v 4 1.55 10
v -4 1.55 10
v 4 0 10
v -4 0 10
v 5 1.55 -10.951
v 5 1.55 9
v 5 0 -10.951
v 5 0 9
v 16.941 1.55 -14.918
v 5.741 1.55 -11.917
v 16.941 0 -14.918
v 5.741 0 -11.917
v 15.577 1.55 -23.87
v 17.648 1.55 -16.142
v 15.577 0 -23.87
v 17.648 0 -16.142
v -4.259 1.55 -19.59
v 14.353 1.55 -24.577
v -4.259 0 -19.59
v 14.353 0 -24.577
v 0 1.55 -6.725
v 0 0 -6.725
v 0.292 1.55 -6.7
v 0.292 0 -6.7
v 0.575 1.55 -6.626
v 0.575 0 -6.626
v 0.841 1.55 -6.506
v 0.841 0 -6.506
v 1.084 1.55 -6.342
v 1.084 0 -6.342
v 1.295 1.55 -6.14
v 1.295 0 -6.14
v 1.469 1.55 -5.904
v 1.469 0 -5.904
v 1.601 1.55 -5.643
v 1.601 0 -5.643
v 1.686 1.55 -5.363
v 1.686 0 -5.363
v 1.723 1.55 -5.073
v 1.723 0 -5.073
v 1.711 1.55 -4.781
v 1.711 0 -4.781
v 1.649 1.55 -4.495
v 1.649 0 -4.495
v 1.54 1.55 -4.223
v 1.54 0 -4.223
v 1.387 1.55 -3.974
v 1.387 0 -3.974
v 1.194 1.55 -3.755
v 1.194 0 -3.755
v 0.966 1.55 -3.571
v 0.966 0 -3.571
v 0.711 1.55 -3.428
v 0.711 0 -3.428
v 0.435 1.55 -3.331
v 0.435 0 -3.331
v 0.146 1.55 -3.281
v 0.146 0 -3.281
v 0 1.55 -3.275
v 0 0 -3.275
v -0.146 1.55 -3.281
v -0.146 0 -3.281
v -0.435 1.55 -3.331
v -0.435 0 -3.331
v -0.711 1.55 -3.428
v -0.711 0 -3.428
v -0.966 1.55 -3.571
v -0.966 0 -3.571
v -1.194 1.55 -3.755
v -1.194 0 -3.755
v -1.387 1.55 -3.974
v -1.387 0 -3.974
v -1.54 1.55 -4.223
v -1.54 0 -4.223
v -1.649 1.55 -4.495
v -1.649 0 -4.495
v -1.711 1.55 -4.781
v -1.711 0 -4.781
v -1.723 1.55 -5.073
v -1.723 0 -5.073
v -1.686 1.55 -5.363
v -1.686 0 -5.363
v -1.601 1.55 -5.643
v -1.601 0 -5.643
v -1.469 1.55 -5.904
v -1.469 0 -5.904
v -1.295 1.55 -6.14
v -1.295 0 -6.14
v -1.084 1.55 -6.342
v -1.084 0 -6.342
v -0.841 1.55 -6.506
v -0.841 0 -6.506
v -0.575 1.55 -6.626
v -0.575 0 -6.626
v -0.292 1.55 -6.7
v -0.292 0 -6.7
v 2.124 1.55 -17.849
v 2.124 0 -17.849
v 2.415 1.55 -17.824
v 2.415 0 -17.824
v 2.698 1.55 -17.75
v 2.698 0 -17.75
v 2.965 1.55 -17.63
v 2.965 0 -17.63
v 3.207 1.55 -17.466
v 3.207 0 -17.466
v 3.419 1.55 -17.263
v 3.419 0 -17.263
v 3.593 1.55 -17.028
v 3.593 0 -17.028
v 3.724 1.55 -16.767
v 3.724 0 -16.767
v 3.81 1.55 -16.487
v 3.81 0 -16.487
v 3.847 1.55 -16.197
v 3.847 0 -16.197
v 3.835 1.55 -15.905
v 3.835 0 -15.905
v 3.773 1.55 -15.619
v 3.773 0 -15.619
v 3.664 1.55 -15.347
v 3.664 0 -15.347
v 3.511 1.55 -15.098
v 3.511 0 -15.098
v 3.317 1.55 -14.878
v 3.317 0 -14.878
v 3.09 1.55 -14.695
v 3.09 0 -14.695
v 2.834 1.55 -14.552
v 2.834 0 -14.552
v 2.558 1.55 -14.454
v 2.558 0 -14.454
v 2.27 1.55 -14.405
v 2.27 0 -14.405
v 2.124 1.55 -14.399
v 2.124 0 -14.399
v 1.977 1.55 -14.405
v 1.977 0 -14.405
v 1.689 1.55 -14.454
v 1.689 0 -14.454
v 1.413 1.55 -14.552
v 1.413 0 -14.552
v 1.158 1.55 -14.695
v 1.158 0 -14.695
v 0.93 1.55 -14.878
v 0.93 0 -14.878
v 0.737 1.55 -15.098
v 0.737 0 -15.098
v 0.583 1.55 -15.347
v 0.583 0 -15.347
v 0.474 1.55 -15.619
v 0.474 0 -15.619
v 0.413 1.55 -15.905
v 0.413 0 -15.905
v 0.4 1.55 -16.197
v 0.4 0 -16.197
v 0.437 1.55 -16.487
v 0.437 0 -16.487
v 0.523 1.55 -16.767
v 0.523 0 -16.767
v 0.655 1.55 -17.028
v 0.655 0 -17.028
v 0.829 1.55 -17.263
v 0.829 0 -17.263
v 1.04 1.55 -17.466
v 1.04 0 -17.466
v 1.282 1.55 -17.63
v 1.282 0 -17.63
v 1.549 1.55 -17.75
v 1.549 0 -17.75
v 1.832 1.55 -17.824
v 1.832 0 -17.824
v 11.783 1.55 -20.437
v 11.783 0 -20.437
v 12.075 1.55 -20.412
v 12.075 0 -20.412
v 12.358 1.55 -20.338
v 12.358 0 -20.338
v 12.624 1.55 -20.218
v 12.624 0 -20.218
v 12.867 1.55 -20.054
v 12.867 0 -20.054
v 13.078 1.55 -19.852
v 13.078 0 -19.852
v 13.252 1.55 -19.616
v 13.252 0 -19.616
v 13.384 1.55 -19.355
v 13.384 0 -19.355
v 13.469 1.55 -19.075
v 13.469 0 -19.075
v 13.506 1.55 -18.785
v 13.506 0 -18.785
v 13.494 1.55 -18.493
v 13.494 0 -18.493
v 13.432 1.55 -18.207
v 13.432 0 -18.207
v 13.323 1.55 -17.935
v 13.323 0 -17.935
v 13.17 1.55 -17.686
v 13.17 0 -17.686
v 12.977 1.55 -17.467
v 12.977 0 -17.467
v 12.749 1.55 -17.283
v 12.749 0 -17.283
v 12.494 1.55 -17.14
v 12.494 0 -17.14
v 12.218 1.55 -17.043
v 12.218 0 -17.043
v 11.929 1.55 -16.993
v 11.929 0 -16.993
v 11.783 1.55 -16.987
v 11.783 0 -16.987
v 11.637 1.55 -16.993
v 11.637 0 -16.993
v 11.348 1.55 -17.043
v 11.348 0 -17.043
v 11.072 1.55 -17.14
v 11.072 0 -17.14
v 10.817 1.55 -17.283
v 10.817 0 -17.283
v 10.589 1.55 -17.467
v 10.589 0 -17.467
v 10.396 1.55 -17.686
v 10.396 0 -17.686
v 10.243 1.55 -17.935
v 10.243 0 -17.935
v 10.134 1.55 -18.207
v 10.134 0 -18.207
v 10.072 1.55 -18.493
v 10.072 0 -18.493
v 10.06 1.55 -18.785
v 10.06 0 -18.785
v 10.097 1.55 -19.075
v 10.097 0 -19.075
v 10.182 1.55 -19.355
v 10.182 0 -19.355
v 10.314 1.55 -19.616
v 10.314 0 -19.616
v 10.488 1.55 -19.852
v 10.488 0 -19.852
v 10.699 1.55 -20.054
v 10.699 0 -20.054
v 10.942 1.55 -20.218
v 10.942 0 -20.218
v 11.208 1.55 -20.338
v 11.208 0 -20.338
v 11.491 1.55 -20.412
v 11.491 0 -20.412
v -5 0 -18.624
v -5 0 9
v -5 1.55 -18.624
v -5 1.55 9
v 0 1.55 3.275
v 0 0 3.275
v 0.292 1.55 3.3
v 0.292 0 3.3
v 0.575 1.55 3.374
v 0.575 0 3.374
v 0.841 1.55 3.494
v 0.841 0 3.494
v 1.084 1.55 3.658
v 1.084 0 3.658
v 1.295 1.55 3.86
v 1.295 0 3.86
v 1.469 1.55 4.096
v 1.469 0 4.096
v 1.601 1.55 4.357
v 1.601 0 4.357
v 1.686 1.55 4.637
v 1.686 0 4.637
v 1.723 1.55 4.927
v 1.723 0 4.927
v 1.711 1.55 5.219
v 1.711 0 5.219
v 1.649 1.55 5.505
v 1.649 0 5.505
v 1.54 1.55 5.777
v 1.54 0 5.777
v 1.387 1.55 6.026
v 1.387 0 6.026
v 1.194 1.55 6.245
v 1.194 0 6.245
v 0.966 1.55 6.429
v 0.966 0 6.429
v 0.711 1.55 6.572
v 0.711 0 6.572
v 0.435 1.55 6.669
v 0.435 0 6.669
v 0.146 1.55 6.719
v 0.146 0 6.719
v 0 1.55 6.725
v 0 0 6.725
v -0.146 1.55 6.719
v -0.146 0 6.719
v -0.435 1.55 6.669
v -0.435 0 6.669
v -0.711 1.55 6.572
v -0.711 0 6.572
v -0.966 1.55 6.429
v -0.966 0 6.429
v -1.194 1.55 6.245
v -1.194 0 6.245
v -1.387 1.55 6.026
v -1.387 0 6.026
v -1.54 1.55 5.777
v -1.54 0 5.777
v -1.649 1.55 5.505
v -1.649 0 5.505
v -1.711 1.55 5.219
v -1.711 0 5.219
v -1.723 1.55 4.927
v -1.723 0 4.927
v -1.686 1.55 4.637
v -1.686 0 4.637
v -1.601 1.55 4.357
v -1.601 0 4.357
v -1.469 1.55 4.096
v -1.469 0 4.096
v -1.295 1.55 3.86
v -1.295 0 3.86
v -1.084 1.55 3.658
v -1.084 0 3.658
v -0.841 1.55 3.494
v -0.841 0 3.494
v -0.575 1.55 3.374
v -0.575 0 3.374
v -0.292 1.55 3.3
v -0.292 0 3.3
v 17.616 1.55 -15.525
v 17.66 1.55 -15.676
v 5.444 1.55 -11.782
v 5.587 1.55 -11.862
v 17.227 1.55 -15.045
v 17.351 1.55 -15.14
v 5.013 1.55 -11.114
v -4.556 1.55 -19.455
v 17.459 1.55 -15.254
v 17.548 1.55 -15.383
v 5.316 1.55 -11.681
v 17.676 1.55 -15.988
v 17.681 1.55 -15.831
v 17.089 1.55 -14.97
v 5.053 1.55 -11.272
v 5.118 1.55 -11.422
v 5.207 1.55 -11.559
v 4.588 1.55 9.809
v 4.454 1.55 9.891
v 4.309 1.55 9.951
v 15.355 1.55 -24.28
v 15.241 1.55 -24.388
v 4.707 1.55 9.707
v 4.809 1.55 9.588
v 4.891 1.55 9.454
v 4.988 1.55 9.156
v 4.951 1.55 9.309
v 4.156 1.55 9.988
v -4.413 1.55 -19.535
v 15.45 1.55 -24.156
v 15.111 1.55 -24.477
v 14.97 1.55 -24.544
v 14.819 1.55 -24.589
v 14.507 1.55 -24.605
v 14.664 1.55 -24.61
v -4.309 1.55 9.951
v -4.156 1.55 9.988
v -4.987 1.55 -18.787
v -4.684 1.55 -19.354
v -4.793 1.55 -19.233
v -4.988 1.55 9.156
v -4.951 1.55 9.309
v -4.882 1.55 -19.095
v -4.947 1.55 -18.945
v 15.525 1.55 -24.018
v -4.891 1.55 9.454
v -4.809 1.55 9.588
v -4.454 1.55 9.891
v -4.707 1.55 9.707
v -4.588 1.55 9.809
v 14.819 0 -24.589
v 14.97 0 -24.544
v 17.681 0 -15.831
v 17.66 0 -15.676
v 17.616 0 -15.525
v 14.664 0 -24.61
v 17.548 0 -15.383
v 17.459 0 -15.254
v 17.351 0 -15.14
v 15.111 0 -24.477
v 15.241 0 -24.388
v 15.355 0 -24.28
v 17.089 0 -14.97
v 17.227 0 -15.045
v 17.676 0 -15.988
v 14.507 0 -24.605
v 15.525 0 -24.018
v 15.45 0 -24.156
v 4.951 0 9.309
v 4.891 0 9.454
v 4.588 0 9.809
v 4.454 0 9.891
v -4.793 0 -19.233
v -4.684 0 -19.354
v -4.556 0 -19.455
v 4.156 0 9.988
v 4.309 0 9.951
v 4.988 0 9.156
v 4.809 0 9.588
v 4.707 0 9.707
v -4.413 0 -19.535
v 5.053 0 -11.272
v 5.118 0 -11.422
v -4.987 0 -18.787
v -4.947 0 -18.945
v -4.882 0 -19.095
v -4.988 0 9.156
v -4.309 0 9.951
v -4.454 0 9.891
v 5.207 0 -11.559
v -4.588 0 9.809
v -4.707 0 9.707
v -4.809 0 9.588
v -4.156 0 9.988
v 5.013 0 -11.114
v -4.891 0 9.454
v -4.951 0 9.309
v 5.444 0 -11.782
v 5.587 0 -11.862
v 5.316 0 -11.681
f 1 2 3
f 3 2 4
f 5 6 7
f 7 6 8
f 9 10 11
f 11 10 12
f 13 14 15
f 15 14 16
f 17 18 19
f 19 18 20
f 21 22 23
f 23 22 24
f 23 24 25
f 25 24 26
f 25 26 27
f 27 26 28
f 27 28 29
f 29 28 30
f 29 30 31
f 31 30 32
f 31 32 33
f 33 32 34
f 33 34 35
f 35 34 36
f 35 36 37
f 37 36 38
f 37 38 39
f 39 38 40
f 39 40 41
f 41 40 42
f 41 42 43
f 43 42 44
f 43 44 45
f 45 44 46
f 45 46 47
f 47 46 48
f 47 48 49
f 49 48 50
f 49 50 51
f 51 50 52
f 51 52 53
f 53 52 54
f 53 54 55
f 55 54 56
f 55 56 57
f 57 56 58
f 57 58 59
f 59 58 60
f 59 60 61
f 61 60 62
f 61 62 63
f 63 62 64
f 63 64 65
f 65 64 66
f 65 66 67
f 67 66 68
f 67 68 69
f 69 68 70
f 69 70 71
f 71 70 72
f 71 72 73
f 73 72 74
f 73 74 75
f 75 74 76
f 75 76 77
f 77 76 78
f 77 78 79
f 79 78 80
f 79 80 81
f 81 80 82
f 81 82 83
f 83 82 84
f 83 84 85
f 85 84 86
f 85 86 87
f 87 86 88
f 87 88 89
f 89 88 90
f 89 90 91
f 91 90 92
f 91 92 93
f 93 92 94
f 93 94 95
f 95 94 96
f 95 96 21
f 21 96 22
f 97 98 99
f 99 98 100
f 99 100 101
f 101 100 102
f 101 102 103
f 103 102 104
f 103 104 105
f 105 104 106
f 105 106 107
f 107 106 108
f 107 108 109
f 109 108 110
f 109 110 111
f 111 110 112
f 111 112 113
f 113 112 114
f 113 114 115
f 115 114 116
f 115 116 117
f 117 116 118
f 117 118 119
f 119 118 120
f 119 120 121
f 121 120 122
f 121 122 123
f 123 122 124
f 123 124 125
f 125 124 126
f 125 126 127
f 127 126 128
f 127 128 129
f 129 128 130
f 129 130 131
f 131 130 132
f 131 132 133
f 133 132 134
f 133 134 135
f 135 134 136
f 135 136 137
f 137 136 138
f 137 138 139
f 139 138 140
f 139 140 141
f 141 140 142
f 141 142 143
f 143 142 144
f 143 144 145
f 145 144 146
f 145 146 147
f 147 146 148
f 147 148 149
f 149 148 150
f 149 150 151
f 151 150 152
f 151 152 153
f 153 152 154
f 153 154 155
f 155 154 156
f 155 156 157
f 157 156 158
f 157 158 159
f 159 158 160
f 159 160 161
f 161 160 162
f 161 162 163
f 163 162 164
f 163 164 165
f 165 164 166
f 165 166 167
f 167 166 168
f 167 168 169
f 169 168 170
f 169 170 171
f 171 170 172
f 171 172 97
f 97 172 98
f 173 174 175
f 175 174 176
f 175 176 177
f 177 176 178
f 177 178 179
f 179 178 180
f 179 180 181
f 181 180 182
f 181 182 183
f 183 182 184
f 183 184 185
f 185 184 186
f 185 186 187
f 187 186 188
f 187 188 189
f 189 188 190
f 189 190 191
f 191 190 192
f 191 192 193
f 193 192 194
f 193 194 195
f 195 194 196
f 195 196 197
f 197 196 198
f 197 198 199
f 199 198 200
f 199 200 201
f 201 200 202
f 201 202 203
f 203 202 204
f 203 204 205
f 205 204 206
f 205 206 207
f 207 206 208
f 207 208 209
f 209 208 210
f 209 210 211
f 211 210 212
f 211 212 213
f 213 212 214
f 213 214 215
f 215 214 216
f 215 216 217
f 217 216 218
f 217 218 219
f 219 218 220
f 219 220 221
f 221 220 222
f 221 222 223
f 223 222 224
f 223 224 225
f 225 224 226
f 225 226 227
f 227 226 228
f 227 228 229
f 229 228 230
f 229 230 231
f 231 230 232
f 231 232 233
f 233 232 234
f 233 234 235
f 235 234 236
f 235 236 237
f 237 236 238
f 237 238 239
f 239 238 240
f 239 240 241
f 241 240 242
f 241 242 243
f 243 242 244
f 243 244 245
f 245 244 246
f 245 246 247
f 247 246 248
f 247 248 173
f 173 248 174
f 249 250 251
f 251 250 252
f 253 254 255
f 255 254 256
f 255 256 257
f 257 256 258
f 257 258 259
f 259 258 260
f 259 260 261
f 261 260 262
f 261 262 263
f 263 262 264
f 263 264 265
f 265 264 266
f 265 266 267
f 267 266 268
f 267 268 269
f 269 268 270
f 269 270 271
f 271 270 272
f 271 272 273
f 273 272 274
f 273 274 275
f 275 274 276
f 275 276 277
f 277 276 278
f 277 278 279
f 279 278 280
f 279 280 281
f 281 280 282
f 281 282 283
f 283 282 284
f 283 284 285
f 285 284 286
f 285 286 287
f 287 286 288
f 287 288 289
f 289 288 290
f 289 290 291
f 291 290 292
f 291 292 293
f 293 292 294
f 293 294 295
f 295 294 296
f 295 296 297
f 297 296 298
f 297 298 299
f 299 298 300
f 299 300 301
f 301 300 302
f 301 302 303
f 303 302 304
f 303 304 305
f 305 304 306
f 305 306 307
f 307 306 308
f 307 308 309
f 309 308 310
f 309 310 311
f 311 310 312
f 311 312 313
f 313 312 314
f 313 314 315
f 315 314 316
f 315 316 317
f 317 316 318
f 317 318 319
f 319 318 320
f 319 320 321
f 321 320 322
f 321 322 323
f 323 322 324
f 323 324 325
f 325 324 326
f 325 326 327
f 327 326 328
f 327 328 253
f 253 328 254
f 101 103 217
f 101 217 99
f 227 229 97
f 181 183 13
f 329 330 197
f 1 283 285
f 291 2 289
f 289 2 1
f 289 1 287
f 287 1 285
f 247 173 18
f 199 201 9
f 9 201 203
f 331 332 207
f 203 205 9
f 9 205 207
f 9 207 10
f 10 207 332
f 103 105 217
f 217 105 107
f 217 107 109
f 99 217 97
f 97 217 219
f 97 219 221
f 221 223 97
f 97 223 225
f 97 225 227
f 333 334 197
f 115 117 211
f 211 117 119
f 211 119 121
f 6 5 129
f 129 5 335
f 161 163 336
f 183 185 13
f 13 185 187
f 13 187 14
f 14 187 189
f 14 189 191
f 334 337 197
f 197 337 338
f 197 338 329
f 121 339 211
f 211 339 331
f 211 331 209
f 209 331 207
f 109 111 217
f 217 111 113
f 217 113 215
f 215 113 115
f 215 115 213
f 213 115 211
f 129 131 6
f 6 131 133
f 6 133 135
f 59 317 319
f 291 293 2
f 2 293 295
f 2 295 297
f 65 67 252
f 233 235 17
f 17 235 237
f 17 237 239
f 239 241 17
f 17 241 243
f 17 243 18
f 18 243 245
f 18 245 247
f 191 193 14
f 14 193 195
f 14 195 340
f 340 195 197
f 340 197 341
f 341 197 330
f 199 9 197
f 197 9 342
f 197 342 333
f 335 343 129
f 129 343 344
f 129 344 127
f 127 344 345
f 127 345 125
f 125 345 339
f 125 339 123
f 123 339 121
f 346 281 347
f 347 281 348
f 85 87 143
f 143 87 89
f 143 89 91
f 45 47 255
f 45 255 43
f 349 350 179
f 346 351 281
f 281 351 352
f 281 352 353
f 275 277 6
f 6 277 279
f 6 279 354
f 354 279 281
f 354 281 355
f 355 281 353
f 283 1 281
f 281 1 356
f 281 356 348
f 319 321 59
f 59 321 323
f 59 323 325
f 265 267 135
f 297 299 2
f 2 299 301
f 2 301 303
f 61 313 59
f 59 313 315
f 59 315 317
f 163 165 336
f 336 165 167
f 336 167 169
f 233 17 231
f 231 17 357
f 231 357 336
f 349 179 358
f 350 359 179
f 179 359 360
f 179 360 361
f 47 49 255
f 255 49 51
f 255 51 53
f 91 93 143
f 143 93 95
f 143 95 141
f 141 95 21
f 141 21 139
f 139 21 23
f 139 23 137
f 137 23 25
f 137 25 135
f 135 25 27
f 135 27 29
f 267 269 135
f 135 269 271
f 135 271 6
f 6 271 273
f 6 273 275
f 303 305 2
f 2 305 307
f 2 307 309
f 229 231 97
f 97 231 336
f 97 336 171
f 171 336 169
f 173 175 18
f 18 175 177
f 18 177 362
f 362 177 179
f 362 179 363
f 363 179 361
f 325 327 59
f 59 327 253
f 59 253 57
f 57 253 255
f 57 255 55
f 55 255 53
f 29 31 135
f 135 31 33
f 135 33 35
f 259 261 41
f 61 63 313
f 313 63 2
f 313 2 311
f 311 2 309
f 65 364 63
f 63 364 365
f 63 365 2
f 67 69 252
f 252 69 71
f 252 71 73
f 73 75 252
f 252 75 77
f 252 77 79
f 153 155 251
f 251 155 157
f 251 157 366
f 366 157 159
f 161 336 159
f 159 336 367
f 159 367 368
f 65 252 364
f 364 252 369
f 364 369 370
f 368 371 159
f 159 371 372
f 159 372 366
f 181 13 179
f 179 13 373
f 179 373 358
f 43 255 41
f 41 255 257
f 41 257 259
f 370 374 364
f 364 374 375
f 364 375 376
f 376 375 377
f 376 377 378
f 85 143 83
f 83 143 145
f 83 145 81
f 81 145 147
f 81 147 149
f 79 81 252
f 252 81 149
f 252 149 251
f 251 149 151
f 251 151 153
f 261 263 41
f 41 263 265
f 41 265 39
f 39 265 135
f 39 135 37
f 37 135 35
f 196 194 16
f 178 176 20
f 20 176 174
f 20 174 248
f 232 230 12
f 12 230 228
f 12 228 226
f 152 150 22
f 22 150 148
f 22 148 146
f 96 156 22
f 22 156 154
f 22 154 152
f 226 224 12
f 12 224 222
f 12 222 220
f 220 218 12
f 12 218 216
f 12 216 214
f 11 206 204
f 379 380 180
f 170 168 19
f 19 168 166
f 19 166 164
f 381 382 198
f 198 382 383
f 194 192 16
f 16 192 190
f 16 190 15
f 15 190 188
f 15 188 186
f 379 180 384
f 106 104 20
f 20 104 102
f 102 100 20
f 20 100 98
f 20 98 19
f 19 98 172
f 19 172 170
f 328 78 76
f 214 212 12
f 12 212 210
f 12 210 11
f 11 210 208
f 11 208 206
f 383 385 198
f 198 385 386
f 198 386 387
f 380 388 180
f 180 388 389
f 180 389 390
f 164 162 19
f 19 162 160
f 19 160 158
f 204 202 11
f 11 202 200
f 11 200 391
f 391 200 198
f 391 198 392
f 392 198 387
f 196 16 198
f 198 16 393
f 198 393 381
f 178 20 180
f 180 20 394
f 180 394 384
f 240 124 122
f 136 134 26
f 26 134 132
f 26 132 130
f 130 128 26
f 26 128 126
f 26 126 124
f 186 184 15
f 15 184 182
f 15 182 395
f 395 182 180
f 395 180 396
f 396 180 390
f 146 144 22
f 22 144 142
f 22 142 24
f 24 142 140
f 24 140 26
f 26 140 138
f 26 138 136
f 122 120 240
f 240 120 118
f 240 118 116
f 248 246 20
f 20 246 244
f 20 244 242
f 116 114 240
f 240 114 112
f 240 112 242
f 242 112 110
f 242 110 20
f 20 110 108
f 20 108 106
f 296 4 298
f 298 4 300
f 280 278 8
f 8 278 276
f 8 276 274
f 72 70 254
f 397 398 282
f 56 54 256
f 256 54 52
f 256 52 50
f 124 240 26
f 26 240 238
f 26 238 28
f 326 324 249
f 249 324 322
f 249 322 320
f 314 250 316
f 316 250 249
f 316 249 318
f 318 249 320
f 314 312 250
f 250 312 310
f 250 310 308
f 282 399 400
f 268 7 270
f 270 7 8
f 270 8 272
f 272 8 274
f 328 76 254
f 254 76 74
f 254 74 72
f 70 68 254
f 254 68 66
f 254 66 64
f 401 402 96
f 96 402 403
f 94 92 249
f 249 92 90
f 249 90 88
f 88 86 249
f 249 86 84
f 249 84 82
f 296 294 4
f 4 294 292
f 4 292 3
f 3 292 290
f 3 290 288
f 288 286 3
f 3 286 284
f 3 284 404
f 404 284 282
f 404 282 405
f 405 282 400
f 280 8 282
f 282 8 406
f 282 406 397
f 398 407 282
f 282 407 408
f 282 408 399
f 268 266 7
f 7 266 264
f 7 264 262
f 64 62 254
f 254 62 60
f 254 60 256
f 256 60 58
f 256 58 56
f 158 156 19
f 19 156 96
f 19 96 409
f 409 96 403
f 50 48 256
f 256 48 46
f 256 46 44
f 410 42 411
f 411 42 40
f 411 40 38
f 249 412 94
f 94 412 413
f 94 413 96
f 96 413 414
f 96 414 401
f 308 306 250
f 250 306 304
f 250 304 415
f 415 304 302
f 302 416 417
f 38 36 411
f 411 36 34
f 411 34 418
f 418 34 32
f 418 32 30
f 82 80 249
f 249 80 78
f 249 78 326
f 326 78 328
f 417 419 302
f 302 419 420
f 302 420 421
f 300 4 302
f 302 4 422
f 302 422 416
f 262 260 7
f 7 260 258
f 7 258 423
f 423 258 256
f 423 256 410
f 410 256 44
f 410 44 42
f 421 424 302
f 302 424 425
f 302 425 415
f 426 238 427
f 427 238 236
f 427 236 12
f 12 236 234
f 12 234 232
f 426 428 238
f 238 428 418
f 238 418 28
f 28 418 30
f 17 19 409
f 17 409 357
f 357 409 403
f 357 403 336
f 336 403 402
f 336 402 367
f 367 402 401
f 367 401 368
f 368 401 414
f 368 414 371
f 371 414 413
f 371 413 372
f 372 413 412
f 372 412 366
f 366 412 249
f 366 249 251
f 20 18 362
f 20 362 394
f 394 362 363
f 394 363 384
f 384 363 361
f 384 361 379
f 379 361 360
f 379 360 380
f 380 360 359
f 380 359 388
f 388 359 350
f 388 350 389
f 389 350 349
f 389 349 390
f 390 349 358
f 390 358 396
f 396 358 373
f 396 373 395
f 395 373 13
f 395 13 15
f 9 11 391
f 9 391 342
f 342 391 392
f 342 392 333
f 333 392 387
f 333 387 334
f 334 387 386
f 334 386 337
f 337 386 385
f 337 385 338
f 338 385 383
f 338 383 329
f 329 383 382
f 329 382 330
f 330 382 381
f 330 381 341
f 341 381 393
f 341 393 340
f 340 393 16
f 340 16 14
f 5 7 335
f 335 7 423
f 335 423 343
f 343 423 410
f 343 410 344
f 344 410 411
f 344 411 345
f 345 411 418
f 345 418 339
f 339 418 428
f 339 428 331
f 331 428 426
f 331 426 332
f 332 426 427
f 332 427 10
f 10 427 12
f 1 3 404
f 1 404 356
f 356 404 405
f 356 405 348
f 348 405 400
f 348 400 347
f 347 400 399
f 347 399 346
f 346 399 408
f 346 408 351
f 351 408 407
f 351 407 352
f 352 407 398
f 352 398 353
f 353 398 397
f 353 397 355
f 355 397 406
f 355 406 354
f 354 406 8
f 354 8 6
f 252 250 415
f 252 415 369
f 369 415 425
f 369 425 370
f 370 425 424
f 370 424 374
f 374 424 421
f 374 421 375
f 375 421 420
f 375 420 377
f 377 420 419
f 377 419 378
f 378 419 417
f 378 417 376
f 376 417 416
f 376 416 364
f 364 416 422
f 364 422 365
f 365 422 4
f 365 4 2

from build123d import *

# Parameters (mm, degrees)
SKETCH2_R           = 1.725
SKETCH2_W           = 10
SKETCH2_H           = 20
BOSS_EXTRUDE1_DEPTH = 1.55
FILLET1_R           = 1


with BuildPart() as part:
    # Sketch2 → Boss-Extrude1 (new body)
    # profile 1 of 4: a face of its own
    with BuildSketch(Plane(origin=(0, 0, 0), x_dir=(1, 0, 0), z_dir=(0, 1, 0))):
        Polygon((17.906706977, 15.176380902), (-1.411809549, 10), (-4, 19.659258263), (15.318516526, 24.835639165), align=None)
        with Locations(Location((11.78298262, 18.711914808, 0), (0, 0, 90))):
            Circle(SKETCH2_R, mode=Mode.SUBTRACT)
        with Locations(Location((2.123724357, 16.123724357, 0), (0, 0, 90))):
            Circle(SKETCH2_R, mode=Mode.SUBTRACT)
    # profile 2 of 4: a face of its own
    with BuildSketch(Plane(origin=(0, 0, 0), x_dir=(1, 0, 0), z_dir=(0, 1, 0))):
        Polygon((-1.411809549, 10), (-4, 19.659258263), (-5, 19.39130907), (-5, 10), align=None)
    # profile 3 of 4: a face of its own
    with BuildSketch(Plane(origin=(0, 0, 0), x_dir=(1, 0, 0), z_dir=(0, 1, 0))):
        Rectangle(SKETCH2_W, SKETCH2_H)
        with Locations(Location((0, 5, 0), (0, 0, 90))):
            Circle(SKETCH2_R, mode=Mode.SUBTRACT)
        with Locations(Location((0, -5, 0), (0, 0, 90))):
            Circle(SKETCH2_R, mode=Mode.SUBTRACT)
    # profile 4 of 4: a face of its own
    with BuildSketch(Plane(origin=(0, 0, 0), x_dir=(1, 0, 0), z_dir=(0, 1, 0))):
        Polygon((5, 11.718039191), (-1.411809549, 10), (5, 10), align=None)
    extrude(amount=BOSS_EXTRUDE1_DEPTH)

    # Fillet1
    fillet1_edges = [part.edges().sort_by_distance(p)[0] for p in [
        (-5, 0.775, 10),
        (-5, 0.775, -19.39130907),
        (15.318516526, 0.775, -24.835639165),
        (17.906706977, 0.775, -15.176380902),
        (5, 0.775, -11.718039191),
        (5, 0.775, 10),
    ]]
    fillet(fillet1_edges, radius=FILLET1_R)


solid = part.part
